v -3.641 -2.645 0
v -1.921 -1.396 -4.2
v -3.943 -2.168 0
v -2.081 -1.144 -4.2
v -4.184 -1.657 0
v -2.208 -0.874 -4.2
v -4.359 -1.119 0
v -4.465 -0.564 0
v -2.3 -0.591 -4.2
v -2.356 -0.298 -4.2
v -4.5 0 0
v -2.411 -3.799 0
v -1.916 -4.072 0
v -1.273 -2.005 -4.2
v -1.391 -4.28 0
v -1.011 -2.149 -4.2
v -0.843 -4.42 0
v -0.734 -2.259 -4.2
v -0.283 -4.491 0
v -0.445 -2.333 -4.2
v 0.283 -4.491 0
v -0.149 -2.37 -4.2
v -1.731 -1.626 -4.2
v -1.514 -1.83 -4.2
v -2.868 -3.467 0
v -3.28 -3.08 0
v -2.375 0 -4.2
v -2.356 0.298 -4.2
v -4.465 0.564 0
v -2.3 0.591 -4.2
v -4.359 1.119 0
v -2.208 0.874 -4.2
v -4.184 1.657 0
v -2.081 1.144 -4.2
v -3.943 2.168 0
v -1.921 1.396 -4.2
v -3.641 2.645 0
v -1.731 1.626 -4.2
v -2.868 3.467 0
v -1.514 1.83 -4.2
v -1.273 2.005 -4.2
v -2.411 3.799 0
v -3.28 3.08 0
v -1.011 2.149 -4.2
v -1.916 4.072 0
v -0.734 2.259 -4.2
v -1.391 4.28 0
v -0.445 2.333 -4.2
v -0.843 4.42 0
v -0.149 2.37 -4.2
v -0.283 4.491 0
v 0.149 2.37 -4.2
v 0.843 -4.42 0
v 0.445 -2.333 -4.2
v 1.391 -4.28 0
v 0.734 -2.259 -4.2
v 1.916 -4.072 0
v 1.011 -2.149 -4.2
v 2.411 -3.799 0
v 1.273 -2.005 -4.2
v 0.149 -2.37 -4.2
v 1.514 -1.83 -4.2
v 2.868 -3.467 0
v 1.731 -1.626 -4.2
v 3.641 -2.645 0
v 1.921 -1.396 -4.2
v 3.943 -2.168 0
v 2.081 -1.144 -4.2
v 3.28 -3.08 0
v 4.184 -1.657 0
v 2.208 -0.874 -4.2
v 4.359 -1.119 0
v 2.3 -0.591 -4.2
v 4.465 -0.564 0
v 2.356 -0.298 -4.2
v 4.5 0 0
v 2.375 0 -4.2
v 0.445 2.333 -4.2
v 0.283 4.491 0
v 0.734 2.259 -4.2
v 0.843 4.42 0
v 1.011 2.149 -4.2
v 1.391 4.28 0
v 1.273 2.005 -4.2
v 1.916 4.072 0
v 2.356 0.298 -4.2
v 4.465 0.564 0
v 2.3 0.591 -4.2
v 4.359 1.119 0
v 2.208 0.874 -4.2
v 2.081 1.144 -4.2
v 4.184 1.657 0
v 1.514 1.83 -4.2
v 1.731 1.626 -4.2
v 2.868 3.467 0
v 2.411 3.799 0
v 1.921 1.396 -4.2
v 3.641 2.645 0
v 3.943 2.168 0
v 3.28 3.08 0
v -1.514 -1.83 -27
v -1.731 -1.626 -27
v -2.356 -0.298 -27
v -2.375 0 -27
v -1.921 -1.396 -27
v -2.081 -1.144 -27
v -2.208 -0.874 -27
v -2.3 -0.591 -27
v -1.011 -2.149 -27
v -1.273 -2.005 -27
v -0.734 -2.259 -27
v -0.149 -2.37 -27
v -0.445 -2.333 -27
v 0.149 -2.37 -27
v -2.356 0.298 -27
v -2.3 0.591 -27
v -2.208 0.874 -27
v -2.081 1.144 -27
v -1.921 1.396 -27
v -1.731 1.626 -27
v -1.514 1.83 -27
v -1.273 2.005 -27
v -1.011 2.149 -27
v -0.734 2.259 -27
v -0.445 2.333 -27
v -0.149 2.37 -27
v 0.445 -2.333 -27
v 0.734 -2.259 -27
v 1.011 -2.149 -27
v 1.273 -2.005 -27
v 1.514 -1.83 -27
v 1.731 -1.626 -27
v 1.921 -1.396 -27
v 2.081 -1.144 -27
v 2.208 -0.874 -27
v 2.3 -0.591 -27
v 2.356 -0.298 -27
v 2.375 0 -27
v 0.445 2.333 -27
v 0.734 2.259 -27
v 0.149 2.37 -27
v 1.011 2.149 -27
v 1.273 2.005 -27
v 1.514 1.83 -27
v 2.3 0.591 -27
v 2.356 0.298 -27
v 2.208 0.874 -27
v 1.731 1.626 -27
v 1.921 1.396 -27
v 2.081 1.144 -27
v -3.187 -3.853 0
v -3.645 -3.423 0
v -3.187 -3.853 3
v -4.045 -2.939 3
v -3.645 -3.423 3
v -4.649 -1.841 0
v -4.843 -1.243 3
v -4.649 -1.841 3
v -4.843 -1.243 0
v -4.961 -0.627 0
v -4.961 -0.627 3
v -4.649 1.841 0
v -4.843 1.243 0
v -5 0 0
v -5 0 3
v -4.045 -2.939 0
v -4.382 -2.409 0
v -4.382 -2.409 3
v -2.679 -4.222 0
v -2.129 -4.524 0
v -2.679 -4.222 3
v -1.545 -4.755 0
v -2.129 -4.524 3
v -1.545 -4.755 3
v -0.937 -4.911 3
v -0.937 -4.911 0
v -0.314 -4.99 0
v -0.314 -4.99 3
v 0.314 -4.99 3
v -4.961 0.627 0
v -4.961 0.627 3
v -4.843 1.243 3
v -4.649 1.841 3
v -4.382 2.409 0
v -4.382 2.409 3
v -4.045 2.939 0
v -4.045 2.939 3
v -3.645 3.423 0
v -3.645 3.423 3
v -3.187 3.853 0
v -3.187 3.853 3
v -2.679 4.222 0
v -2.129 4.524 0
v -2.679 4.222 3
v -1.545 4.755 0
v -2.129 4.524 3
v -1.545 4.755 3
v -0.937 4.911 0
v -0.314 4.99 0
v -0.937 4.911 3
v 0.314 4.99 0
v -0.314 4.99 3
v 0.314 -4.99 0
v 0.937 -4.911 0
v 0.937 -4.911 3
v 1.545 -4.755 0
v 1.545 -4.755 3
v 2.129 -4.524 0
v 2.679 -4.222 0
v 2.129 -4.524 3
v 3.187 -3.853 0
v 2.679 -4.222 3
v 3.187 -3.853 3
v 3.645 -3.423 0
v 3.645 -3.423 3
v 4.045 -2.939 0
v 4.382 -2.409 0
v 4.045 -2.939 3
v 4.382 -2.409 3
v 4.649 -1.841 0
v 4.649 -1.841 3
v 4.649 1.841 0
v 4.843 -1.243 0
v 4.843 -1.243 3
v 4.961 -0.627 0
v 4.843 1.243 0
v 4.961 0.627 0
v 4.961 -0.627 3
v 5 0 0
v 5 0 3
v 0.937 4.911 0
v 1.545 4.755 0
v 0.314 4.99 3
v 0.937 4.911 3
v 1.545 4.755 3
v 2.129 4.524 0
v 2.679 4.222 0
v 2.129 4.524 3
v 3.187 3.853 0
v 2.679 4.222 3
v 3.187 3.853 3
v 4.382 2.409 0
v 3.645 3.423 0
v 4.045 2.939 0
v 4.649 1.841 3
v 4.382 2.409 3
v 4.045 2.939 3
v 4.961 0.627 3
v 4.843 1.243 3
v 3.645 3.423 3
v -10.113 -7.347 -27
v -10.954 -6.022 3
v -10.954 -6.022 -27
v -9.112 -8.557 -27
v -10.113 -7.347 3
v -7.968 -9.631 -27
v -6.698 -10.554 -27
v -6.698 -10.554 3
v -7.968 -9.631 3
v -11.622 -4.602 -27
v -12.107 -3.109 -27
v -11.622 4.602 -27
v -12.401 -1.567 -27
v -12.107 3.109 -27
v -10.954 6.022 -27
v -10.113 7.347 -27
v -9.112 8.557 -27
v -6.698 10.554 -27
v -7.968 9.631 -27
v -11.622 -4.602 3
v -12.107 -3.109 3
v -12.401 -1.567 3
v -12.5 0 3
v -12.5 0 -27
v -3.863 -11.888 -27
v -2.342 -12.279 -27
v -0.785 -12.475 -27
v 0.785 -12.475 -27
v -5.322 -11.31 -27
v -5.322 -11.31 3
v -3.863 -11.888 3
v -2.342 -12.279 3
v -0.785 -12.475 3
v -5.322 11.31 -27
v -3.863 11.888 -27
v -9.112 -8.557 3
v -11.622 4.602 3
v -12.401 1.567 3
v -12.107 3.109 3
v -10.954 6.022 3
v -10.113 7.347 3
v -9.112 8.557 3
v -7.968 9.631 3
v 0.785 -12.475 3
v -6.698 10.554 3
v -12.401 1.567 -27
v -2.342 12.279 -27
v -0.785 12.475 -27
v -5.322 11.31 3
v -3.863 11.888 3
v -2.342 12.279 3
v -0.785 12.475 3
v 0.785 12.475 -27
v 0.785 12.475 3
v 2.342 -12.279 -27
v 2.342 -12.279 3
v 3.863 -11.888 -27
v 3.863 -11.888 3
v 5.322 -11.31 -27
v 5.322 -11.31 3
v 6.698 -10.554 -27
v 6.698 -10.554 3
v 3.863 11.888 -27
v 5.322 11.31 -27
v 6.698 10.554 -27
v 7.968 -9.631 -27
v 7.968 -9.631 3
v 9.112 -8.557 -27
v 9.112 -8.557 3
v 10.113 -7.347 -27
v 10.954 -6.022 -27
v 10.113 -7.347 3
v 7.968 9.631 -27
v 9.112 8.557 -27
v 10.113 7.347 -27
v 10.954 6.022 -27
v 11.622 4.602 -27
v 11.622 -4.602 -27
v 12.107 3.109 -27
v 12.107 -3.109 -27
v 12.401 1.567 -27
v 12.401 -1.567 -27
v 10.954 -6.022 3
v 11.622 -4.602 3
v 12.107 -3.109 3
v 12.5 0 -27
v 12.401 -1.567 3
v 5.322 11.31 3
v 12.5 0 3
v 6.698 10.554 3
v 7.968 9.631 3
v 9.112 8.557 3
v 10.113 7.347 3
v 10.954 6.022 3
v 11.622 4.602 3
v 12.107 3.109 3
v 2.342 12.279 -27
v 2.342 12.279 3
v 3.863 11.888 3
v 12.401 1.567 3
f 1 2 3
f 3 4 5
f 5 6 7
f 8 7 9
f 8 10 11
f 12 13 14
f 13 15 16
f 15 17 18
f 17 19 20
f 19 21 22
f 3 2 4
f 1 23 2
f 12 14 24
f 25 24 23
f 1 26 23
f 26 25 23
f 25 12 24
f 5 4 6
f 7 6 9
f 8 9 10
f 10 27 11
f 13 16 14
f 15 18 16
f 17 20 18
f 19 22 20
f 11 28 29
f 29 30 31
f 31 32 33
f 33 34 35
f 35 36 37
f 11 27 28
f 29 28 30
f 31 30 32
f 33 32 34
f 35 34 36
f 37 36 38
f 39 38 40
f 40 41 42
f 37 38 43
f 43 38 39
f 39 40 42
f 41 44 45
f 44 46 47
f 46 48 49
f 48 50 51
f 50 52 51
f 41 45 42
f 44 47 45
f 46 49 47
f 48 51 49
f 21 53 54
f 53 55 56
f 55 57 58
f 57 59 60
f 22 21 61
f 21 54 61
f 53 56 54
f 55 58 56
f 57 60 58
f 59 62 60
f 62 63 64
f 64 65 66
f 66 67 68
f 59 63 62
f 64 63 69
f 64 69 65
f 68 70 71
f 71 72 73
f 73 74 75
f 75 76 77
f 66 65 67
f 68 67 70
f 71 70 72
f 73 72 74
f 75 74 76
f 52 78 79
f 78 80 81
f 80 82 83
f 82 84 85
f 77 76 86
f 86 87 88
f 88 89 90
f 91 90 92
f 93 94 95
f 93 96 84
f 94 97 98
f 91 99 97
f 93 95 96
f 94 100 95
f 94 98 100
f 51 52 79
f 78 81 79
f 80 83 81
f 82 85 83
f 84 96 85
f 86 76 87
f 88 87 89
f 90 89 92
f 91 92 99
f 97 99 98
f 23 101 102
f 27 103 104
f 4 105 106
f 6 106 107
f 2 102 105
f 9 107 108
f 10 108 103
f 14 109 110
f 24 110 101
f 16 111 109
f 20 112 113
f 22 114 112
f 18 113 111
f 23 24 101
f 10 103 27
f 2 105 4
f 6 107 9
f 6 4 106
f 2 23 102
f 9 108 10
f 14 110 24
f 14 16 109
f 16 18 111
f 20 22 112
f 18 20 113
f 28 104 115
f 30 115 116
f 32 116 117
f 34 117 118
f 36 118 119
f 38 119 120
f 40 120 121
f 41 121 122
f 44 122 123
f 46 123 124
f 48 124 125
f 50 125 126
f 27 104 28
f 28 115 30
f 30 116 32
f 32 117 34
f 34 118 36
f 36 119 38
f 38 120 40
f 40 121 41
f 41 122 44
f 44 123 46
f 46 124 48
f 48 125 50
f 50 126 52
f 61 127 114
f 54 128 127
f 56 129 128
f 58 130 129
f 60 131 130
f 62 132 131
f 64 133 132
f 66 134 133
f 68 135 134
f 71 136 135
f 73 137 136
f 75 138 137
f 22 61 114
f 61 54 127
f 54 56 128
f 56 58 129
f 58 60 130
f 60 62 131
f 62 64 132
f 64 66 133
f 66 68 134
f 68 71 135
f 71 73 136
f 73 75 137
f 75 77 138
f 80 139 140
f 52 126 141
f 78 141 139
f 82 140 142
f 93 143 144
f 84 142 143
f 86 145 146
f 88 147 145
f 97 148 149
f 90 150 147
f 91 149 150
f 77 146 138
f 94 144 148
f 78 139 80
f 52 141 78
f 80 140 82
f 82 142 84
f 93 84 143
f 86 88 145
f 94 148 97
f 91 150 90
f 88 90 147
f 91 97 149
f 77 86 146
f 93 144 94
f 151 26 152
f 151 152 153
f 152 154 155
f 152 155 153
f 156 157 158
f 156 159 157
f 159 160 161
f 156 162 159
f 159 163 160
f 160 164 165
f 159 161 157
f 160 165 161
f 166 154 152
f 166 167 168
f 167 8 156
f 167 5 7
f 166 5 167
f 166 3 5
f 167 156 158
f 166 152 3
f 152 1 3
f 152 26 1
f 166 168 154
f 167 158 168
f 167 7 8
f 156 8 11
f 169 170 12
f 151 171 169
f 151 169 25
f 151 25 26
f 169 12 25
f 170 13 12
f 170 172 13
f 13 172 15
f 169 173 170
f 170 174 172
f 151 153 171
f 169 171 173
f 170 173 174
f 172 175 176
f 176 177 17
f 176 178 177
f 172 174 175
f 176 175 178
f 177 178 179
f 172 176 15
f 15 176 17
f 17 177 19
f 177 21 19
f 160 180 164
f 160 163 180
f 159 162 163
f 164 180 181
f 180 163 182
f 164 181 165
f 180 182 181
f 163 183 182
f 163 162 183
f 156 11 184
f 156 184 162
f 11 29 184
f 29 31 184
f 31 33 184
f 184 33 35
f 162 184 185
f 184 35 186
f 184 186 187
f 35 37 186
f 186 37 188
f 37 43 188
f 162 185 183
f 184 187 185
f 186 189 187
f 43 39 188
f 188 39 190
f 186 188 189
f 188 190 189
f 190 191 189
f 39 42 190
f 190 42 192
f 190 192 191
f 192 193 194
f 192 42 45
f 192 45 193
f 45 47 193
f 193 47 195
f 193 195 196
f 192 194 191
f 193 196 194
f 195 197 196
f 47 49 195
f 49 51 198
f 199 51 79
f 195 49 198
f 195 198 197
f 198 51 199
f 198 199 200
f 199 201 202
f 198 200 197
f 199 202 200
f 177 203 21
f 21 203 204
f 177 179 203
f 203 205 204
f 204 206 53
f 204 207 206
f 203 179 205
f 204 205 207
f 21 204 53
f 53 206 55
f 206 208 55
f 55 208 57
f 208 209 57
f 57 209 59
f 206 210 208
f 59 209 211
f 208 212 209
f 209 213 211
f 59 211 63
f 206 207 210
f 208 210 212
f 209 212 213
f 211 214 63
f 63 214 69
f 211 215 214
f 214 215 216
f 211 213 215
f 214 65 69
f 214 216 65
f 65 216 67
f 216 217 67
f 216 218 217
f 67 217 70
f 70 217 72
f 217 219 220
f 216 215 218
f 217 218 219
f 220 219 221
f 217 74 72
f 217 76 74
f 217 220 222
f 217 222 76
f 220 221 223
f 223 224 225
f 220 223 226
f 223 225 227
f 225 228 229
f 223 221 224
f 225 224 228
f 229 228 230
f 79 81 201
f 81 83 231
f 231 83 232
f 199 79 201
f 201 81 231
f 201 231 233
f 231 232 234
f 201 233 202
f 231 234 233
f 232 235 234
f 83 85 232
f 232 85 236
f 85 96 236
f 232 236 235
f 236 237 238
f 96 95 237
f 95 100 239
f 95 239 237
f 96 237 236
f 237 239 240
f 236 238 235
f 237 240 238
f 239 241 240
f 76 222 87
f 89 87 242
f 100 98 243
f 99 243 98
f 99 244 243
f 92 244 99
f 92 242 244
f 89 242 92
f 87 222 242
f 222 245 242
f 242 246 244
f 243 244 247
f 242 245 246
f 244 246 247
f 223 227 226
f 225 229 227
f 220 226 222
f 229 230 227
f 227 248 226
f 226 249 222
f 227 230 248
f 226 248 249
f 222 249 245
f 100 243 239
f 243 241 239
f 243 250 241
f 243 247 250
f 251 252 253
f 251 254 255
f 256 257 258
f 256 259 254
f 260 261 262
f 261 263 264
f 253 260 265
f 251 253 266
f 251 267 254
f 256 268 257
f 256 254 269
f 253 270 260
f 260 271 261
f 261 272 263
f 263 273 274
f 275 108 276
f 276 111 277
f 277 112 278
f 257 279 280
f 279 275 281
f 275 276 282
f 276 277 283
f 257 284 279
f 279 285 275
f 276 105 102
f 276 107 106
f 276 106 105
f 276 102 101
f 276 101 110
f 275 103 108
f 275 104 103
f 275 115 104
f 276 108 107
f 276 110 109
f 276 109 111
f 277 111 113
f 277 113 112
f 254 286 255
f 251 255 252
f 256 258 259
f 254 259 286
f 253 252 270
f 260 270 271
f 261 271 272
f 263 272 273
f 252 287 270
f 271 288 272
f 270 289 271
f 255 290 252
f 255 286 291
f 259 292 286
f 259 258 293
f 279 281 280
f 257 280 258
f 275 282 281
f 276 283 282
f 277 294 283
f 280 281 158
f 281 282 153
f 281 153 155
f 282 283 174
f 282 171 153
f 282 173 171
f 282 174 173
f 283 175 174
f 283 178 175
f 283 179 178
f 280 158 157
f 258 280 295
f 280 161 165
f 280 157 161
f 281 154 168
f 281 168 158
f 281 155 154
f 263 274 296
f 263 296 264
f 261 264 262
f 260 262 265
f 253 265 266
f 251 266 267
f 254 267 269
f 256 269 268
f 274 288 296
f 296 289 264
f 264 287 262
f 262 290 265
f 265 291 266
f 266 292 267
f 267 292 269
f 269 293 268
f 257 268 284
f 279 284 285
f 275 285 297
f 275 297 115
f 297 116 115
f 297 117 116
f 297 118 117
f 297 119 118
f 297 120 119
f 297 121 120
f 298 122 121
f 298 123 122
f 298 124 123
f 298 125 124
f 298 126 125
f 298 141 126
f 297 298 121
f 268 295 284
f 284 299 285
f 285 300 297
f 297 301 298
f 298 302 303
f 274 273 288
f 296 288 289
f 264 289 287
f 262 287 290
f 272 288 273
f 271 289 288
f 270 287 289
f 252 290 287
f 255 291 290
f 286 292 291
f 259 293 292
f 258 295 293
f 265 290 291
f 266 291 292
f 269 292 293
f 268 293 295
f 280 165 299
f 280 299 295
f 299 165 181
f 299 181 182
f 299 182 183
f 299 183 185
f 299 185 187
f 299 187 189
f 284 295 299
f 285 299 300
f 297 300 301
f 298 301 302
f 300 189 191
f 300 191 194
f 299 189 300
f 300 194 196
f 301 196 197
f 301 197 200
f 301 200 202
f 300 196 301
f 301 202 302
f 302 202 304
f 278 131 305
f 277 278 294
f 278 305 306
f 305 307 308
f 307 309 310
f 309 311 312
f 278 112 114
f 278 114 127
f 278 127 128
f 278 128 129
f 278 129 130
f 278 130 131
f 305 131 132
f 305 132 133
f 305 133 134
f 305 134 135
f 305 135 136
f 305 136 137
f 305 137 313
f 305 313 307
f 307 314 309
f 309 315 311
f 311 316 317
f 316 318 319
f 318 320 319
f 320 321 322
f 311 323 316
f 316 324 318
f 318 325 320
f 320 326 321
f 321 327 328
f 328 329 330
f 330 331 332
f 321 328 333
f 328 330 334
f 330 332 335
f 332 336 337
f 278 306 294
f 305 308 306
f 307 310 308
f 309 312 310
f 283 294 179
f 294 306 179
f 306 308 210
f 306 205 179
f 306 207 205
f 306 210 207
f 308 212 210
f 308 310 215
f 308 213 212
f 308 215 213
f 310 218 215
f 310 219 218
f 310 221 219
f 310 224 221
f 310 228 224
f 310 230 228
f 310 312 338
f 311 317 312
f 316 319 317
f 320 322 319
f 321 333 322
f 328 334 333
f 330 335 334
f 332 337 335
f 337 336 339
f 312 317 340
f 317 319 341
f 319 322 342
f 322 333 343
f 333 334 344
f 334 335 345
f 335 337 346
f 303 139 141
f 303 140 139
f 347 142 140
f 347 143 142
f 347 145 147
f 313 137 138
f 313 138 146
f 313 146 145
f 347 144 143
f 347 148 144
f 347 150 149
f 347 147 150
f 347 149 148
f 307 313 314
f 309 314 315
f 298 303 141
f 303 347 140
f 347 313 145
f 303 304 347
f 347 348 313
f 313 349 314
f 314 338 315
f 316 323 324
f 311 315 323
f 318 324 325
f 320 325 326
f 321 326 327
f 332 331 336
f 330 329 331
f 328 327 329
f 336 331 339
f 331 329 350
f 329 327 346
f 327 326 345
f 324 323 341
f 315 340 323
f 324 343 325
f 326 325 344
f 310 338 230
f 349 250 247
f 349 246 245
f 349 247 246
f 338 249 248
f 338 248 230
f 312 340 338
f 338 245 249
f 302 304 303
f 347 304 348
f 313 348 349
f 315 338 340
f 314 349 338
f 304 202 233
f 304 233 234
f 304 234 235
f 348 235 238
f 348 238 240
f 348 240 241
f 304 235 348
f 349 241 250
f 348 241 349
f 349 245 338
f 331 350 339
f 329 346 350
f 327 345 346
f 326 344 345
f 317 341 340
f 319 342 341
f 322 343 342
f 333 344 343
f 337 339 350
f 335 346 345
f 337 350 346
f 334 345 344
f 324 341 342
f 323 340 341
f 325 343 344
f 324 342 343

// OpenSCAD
$fn = 50;

difference() {
	union() {
		translate(v = [0, 0, -27.0]) {
			cylinder(h = 30, r = 12.5);
		}
	}
	union() {
		translate(v = [0, 0, 0]) {
			rotate(a = [0, 0, 0]) {
				difference() {
					union() {
						translate(v = [0, 0, -30.0]) {
							cylinder(h = 30, r = 2.25);
						}
						translate(v = [0, 0, -4.2]) {
							cylinder(h = 4.2, r1 = 2.375, r2 = 4.5);
						}
						translate(v = [0, 0, -30.0]) {
							cylinder(h = 30, r = 2.375);
						}
						translate(v = [0, 0, -30.0]) {
							cylinder(h = 30, r = 2.25);
						}
					}
					union();
				}
			}
		}
		#cylinder(h = 3, r = 5.0);
	}
}
